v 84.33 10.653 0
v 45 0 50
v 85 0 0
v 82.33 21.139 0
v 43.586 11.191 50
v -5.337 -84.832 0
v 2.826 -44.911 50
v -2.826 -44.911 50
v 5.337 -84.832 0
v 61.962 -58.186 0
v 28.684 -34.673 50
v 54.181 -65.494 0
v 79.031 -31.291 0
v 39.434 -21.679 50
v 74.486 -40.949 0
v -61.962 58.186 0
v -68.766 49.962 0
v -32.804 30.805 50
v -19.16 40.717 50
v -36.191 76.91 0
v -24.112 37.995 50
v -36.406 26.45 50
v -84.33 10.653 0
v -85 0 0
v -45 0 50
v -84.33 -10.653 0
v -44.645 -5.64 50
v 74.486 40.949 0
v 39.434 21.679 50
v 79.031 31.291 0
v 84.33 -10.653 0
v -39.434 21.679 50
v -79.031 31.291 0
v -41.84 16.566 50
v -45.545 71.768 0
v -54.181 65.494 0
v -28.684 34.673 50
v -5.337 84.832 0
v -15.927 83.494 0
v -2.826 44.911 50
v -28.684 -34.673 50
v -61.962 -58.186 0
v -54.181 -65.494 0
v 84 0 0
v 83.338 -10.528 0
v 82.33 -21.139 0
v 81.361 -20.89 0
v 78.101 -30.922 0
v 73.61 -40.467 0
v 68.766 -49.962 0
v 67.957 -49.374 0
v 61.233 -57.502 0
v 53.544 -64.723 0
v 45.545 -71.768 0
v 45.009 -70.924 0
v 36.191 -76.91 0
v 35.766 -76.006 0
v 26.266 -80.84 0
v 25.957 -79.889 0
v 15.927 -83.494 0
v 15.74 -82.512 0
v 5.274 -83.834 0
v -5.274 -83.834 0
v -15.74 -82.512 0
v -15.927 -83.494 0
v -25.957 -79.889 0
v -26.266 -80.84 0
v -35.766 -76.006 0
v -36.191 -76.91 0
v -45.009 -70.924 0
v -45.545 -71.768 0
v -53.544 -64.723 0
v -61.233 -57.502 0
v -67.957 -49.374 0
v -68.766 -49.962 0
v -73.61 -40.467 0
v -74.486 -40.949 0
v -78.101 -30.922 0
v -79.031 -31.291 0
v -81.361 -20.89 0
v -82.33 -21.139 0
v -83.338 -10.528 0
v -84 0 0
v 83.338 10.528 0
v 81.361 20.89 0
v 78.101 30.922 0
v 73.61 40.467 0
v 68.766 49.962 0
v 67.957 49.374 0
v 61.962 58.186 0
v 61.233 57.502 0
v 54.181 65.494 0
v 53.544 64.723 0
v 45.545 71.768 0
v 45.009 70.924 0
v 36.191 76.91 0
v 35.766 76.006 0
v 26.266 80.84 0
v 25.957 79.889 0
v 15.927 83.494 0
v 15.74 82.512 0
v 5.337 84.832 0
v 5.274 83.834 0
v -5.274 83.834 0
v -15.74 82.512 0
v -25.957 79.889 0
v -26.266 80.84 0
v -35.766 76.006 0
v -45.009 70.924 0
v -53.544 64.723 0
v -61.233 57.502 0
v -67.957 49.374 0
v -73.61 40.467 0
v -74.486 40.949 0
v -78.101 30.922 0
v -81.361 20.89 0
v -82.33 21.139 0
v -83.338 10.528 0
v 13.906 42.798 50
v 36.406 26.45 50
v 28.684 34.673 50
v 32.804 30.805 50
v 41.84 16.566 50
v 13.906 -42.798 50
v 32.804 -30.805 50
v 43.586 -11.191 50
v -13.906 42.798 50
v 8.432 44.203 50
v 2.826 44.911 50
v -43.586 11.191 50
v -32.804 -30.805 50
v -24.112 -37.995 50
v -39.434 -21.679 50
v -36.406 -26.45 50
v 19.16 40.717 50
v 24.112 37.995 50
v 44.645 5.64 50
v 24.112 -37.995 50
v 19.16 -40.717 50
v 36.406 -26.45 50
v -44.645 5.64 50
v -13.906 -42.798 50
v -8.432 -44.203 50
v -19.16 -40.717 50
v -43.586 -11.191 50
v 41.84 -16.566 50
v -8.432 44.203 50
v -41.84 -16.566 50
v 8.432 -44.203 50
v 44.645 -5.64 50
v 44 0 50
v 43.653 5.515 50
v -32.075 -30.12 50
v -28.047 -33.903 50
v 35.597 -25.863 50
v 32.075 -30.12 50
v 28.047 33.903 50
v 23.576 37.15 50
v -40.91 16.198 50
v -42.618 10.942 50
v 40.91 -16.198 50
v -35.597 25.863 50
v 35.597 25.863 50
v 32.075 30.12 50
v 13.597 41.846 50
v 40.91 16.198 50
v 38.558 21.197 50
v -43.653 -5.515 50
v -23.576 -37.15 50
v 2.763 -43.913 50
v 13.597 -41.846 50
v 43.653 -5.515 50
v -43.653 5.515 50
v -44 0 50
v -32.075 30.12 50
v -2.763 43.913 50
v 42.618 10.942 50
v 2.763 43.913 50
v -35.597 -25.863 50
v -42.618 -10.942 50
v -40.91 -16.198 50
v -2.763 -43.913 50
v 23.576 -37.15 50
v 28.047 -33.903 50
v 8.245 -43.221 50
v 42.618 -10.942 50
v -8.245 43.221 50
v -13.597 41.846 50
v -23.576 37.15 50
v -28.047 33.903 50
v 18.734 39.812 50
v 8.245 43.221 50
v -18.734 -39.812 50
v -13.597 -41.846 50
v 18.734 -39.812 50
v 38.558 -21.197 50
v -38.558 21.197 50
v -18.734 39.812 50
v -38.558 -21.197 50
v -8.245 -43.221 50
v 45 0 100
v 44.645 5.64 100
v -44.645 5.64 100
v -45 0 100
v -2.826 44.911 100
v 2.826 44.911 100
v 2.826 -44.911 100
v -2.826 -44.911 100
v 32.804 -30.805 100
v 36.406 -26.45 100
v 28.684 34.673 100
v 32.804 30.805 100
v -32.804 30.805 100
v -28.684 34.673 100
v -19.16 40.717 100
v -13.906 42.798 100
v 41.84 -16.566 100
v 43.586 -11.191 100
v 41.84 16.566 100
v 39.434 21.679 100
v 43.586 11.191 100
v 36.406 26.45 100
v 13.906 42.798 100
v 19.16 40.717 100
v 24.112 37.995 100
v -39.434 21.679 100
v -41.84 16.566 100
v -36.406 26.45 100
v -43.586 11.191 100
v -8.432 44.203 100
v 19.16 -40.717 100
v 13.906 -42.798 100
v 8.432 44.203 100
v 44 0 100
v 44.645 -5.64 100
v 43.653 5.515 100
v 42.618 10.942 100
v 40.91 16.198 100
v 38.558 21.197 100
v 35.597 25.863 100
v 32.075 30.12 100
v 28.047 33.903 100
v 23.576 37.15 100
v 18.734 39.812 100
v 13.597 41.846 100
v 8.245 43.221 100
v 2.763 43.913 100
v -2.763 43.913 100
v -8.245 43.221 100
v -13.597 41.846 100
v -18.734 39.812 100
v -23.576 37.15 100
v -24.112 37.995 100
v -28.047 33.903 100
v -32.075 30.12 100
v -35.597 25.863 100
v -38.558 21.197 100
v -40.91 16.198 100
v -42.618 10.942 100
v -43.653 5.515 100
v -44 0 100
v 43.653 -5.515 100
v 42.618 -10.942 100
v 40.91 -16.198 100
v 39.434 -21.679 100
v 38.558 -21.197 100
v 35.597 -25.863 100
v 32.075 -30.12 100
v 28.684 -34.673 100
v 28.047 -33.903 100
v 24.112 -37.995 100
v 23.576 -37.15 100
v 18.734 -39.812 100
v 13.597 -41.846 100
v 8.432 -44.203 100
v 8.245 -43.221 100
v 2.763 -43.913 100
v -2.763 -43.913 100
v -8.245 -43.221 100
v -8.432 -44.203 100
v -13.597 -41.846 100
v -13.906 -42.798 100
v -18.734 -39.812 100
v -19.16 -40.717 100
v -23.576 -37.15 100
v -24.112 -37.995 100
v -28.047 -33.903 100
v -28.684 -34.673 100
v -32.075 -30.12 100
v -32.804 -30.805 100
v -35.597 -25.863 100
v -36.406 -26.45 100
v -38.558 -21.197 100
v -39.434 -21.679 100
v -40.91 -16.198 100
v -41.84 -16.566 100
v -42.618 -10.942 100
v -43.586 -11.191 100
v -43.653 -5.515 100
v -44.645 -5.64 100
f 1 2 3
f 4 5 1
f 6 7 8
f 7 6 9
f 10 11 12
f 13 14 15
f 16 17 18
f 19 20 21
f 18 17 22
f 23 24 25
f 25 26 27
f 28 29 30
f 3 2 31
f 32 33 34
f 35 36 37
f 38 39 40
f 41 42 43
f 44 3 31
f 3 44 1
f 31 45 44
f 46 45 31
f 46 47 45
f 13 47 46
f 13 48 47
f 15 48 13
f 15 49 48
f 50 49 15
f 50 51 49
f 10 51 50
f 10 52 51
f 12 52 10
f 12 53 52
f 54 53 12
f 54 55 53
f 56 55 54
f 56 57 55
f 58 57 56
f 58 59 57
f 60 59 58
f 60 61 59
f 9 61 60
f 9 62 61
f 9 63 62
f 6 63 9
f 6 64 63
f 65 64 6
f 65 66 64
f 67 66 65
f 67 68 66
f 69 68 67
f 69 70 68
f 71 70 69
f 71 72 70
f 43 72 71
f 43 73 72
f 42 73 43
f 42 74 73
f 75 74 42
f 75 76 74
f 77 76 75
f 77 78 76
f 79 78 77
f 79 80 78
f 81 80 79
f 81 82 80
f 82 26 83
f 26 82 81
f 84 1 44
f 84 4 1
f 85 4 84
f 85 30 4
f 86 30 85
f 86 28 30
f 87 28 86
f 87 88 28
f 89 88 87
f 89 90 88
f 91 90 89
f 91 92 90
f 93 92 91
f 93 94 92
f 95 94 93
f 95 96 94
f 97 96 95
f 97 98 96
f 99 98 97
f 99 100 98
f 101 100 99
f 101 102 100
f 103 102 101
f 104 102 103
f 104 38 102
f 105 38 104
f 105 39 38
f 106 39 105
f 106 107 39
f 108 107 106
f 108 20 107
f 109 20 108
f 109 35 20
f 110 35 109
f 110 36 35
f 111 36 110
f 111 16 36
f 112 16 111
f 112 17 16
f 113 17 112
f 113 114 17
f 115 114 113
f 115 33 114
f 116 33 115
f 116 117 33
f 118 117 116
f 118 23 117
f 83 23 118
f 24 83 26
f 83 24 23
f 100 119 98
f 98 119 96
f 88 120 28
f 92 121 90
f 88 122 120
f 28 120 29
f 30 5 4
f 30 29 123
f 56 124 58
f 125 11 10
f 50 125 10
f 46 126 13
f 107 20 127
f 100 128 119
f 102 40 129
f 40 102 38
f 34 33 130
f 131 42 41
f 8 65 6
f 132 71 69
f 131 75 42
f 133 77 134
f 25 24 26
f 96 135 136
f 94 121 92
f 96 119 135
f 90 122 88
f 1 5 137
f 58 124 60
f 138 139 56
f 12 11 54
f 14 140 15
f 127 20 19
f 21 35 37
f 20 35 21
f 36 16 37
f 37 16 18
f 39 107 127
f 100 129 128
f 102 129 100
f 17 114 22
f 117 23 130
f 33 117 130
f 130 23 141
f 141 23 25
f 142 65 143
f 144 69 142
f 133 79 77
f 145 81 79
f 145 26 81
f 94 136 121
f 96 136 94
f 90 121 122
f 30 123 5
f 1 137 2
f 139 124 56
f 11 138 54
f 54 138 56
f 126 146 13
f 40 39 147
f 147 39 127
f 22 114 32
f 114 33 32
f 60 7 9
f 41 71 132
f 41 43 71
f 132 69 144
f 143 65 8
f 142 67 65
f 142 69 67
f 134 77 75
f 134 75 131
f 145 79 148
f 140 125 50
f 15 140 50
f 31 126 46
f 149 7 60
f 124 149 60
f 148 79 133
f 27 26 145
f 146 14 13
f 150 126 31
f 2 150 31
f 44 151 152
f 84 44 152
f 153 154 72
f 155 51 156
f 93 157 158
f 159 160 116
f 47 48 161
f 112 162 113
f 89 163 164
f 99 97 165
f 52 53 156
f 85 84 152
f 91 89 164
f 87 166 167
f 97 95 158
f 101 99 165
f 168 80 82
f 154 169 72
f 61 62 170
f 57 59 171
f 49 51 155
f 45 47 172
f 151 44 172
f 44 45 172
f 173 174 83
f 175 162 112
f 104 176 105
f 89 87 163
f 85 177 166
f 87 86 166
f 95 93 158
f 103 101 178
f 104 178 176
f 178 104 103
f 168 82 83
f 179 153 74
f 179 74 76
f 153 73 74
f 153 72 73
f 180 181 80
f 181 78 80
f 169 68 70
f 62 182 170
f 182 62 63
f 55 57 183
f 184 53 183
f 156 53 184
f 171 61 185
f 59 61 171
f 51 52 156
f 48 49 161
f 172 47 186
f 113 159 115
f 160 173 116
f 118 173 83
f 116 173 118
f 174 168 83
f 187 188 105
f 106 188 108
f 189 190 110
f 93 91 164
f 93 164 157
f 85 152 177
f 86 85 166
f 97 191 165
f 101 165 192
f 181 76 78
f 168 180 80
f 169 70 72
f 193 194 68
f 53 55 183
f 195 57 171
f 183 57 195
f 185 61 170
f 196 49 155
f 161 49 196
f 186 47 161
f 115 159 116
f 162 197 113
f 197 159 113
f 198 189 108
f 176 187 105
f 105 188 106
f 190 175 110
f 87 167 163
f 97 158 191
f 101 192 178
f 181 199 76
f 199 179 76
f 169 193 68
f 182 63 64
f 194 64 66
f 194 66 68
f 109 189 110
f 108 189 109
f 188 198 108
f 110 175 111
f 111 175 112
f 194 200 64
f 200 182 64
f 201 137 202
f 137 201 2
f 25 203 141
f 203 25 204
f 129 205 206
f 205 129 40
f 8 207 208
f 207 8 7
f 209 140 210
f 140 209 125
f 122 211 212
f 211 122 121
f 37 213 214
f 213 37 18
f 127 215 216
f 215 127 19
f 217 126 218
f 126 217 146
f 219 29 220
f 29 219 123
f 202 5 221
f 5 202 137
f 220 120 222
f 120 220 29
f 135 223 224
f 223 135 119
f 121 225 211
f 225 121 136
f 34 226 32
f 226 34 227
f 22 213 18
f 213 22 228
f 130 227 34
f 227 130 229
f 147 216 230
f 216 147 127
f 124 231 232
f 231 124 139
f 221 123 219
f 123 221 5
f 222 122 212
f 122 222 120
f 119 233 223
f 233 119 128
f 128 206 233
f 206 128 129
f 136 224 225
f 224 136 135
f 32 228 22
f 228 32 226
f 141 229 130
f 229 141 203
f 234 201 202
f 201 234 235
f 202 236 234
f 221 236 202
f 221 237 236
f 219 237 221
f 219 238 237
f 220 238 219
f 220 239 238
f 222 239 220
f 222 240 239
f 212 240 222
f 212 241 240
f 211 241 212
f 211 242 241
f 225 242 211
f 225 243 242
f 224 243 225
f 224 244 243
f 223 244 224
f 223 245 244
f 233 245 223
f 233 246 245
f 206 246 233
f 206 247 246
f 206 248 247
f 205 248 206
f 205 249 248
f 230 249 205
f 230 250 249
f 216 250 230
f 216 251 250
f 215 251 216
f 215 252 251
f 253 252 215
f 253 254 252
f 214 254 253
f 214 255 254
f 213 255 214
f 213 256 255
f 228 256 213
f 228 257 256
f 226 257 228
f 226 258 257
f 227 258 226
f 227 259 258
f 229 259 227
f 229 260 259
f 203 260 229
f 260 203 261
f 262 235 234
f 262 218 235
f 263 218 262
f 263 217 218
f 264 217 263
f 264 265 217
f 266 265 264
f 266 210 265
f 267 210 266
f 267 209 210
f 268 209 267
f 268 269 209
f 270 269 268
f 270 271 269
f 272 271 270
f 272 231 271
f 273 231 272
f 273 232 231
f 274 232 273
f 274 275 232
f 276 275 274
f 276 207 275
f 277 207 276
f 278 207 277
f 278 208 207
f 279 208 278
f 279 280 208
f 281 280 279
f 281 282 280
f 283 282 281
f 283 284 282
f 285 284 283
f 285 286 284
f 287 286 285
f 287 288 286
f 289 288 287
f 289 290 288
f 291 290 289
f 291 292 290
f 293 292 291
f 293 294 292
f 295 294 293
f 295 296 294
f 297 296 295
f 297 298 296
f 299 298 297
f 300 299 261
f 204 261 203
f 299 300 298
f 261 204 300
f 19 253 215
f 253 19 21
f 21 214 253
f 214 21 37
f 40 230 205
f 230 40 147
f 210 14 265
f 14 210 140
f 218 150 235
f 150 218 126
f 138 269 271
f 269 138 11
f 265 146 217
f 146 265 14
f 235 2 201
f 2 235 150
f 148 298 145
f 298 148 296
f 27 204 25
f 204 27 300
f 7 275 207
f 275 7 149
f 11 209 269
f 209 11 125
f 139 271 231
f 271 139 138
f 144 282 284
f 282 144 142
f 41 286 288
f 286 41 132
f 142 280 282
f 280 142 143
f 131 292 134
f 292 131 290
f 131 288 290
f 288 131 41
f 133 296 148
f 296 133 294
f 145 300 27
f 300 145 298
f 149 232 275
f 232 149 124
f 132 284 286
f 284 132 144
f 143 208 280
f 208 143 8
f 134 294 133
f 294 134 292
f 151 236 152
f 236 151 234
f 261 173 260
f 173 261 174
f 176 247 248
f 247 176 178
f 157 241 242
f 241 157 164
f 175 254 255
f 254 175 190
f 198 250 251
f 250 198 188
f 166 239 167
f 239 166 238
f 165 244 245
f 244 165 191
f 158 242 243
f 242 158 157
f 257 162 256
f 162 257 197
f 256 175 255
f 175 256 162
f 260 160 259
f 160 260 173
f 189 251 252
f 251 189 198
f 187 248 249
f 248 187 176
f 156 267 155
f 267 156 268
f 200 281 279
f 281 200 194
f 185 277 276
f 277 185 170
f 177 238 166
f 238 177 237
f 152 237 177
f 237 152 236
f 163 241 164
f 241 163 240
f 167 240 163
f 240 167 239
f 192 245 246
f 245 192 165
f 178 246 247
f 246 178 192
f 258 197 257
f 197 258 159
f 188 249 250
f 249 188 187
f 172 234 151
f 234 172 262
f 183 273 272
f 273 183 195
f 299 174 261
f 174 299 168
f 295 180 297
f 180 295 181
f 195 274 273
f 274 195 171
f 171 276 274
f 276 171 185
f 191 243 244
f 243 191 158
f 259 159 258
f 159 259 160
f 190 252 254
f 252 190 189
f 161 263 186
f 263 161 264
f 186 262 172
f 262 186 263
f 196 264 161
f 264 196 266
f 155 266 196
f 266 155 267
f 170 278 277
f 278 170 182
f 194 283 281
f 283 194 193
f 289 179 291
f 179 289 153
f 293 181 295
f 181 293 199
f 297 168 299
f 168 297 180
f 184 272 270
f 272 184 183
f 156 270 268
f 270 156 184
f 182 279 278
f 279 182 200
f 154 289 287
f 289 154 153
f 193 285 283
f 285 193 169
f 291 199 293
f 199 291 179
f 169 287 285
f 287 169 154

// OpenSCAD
$fn = 50;


difference() {
	union() {
		translate(v = [0, 0, 0]) {
			rotate(a = [0, 0, 0]) {
				difference() {
					union() {
						cylinder(h = 50, r1 = 85.0000000000, r2 = 45.0000000000);
					}
					union() {
						cylinder(h = 50, r1 = 84.0000000000, r2 = 44.0000000000);
					}
				}
			}
		}
		translate(v = [0, 0, 50]) {
			rotate(a = [0, 0, 0]) {
				difference() {
					union() {
						cylinder(h = 50, r = 45.0000000000);
					}
					union() {
						cylinder(h = 50, r = 44.0000000000);
					}
				}
			}
		}
		*color(alpha = 1.0000000000, c = "gray") {
			translate(v = [0, 14, 0]) {
				linear_extrude(height = 1) {
					text(font = "Arial:style=Bold", halign = "center", size = 4.5000000000, text = "COMMENT description oobb_cylinder_hollow_shape_p_type_all_save_type_3dpr_modes_1_width_1_height_1_thickness_170_mm_top_90_mm_bottom_extra_85.0_r1_45.0_r2_1_wall_thickness_50_h", valign = "center");
				}
			}
		}
		*color(alpha = 1.0000000000, c = "gray") {
			translate(v = [0, 14, 50]) {
				linear_extrude(height = 1) {
					text(font = "Arial:style=Bold", halign = "center", size = 4.5000000000, text = "COMMENT description oobb_cylinder_hollow_shape_p_type_0_0_50_pos_all_save_type_3dpr_modes_1_width_1_height_1_thickness_170_mm_top_90_mm_bottom_extra_45.0_r_1_wall_thickness_50_h", valign = "center");
				}
			}
		}
	}
	union();
}
